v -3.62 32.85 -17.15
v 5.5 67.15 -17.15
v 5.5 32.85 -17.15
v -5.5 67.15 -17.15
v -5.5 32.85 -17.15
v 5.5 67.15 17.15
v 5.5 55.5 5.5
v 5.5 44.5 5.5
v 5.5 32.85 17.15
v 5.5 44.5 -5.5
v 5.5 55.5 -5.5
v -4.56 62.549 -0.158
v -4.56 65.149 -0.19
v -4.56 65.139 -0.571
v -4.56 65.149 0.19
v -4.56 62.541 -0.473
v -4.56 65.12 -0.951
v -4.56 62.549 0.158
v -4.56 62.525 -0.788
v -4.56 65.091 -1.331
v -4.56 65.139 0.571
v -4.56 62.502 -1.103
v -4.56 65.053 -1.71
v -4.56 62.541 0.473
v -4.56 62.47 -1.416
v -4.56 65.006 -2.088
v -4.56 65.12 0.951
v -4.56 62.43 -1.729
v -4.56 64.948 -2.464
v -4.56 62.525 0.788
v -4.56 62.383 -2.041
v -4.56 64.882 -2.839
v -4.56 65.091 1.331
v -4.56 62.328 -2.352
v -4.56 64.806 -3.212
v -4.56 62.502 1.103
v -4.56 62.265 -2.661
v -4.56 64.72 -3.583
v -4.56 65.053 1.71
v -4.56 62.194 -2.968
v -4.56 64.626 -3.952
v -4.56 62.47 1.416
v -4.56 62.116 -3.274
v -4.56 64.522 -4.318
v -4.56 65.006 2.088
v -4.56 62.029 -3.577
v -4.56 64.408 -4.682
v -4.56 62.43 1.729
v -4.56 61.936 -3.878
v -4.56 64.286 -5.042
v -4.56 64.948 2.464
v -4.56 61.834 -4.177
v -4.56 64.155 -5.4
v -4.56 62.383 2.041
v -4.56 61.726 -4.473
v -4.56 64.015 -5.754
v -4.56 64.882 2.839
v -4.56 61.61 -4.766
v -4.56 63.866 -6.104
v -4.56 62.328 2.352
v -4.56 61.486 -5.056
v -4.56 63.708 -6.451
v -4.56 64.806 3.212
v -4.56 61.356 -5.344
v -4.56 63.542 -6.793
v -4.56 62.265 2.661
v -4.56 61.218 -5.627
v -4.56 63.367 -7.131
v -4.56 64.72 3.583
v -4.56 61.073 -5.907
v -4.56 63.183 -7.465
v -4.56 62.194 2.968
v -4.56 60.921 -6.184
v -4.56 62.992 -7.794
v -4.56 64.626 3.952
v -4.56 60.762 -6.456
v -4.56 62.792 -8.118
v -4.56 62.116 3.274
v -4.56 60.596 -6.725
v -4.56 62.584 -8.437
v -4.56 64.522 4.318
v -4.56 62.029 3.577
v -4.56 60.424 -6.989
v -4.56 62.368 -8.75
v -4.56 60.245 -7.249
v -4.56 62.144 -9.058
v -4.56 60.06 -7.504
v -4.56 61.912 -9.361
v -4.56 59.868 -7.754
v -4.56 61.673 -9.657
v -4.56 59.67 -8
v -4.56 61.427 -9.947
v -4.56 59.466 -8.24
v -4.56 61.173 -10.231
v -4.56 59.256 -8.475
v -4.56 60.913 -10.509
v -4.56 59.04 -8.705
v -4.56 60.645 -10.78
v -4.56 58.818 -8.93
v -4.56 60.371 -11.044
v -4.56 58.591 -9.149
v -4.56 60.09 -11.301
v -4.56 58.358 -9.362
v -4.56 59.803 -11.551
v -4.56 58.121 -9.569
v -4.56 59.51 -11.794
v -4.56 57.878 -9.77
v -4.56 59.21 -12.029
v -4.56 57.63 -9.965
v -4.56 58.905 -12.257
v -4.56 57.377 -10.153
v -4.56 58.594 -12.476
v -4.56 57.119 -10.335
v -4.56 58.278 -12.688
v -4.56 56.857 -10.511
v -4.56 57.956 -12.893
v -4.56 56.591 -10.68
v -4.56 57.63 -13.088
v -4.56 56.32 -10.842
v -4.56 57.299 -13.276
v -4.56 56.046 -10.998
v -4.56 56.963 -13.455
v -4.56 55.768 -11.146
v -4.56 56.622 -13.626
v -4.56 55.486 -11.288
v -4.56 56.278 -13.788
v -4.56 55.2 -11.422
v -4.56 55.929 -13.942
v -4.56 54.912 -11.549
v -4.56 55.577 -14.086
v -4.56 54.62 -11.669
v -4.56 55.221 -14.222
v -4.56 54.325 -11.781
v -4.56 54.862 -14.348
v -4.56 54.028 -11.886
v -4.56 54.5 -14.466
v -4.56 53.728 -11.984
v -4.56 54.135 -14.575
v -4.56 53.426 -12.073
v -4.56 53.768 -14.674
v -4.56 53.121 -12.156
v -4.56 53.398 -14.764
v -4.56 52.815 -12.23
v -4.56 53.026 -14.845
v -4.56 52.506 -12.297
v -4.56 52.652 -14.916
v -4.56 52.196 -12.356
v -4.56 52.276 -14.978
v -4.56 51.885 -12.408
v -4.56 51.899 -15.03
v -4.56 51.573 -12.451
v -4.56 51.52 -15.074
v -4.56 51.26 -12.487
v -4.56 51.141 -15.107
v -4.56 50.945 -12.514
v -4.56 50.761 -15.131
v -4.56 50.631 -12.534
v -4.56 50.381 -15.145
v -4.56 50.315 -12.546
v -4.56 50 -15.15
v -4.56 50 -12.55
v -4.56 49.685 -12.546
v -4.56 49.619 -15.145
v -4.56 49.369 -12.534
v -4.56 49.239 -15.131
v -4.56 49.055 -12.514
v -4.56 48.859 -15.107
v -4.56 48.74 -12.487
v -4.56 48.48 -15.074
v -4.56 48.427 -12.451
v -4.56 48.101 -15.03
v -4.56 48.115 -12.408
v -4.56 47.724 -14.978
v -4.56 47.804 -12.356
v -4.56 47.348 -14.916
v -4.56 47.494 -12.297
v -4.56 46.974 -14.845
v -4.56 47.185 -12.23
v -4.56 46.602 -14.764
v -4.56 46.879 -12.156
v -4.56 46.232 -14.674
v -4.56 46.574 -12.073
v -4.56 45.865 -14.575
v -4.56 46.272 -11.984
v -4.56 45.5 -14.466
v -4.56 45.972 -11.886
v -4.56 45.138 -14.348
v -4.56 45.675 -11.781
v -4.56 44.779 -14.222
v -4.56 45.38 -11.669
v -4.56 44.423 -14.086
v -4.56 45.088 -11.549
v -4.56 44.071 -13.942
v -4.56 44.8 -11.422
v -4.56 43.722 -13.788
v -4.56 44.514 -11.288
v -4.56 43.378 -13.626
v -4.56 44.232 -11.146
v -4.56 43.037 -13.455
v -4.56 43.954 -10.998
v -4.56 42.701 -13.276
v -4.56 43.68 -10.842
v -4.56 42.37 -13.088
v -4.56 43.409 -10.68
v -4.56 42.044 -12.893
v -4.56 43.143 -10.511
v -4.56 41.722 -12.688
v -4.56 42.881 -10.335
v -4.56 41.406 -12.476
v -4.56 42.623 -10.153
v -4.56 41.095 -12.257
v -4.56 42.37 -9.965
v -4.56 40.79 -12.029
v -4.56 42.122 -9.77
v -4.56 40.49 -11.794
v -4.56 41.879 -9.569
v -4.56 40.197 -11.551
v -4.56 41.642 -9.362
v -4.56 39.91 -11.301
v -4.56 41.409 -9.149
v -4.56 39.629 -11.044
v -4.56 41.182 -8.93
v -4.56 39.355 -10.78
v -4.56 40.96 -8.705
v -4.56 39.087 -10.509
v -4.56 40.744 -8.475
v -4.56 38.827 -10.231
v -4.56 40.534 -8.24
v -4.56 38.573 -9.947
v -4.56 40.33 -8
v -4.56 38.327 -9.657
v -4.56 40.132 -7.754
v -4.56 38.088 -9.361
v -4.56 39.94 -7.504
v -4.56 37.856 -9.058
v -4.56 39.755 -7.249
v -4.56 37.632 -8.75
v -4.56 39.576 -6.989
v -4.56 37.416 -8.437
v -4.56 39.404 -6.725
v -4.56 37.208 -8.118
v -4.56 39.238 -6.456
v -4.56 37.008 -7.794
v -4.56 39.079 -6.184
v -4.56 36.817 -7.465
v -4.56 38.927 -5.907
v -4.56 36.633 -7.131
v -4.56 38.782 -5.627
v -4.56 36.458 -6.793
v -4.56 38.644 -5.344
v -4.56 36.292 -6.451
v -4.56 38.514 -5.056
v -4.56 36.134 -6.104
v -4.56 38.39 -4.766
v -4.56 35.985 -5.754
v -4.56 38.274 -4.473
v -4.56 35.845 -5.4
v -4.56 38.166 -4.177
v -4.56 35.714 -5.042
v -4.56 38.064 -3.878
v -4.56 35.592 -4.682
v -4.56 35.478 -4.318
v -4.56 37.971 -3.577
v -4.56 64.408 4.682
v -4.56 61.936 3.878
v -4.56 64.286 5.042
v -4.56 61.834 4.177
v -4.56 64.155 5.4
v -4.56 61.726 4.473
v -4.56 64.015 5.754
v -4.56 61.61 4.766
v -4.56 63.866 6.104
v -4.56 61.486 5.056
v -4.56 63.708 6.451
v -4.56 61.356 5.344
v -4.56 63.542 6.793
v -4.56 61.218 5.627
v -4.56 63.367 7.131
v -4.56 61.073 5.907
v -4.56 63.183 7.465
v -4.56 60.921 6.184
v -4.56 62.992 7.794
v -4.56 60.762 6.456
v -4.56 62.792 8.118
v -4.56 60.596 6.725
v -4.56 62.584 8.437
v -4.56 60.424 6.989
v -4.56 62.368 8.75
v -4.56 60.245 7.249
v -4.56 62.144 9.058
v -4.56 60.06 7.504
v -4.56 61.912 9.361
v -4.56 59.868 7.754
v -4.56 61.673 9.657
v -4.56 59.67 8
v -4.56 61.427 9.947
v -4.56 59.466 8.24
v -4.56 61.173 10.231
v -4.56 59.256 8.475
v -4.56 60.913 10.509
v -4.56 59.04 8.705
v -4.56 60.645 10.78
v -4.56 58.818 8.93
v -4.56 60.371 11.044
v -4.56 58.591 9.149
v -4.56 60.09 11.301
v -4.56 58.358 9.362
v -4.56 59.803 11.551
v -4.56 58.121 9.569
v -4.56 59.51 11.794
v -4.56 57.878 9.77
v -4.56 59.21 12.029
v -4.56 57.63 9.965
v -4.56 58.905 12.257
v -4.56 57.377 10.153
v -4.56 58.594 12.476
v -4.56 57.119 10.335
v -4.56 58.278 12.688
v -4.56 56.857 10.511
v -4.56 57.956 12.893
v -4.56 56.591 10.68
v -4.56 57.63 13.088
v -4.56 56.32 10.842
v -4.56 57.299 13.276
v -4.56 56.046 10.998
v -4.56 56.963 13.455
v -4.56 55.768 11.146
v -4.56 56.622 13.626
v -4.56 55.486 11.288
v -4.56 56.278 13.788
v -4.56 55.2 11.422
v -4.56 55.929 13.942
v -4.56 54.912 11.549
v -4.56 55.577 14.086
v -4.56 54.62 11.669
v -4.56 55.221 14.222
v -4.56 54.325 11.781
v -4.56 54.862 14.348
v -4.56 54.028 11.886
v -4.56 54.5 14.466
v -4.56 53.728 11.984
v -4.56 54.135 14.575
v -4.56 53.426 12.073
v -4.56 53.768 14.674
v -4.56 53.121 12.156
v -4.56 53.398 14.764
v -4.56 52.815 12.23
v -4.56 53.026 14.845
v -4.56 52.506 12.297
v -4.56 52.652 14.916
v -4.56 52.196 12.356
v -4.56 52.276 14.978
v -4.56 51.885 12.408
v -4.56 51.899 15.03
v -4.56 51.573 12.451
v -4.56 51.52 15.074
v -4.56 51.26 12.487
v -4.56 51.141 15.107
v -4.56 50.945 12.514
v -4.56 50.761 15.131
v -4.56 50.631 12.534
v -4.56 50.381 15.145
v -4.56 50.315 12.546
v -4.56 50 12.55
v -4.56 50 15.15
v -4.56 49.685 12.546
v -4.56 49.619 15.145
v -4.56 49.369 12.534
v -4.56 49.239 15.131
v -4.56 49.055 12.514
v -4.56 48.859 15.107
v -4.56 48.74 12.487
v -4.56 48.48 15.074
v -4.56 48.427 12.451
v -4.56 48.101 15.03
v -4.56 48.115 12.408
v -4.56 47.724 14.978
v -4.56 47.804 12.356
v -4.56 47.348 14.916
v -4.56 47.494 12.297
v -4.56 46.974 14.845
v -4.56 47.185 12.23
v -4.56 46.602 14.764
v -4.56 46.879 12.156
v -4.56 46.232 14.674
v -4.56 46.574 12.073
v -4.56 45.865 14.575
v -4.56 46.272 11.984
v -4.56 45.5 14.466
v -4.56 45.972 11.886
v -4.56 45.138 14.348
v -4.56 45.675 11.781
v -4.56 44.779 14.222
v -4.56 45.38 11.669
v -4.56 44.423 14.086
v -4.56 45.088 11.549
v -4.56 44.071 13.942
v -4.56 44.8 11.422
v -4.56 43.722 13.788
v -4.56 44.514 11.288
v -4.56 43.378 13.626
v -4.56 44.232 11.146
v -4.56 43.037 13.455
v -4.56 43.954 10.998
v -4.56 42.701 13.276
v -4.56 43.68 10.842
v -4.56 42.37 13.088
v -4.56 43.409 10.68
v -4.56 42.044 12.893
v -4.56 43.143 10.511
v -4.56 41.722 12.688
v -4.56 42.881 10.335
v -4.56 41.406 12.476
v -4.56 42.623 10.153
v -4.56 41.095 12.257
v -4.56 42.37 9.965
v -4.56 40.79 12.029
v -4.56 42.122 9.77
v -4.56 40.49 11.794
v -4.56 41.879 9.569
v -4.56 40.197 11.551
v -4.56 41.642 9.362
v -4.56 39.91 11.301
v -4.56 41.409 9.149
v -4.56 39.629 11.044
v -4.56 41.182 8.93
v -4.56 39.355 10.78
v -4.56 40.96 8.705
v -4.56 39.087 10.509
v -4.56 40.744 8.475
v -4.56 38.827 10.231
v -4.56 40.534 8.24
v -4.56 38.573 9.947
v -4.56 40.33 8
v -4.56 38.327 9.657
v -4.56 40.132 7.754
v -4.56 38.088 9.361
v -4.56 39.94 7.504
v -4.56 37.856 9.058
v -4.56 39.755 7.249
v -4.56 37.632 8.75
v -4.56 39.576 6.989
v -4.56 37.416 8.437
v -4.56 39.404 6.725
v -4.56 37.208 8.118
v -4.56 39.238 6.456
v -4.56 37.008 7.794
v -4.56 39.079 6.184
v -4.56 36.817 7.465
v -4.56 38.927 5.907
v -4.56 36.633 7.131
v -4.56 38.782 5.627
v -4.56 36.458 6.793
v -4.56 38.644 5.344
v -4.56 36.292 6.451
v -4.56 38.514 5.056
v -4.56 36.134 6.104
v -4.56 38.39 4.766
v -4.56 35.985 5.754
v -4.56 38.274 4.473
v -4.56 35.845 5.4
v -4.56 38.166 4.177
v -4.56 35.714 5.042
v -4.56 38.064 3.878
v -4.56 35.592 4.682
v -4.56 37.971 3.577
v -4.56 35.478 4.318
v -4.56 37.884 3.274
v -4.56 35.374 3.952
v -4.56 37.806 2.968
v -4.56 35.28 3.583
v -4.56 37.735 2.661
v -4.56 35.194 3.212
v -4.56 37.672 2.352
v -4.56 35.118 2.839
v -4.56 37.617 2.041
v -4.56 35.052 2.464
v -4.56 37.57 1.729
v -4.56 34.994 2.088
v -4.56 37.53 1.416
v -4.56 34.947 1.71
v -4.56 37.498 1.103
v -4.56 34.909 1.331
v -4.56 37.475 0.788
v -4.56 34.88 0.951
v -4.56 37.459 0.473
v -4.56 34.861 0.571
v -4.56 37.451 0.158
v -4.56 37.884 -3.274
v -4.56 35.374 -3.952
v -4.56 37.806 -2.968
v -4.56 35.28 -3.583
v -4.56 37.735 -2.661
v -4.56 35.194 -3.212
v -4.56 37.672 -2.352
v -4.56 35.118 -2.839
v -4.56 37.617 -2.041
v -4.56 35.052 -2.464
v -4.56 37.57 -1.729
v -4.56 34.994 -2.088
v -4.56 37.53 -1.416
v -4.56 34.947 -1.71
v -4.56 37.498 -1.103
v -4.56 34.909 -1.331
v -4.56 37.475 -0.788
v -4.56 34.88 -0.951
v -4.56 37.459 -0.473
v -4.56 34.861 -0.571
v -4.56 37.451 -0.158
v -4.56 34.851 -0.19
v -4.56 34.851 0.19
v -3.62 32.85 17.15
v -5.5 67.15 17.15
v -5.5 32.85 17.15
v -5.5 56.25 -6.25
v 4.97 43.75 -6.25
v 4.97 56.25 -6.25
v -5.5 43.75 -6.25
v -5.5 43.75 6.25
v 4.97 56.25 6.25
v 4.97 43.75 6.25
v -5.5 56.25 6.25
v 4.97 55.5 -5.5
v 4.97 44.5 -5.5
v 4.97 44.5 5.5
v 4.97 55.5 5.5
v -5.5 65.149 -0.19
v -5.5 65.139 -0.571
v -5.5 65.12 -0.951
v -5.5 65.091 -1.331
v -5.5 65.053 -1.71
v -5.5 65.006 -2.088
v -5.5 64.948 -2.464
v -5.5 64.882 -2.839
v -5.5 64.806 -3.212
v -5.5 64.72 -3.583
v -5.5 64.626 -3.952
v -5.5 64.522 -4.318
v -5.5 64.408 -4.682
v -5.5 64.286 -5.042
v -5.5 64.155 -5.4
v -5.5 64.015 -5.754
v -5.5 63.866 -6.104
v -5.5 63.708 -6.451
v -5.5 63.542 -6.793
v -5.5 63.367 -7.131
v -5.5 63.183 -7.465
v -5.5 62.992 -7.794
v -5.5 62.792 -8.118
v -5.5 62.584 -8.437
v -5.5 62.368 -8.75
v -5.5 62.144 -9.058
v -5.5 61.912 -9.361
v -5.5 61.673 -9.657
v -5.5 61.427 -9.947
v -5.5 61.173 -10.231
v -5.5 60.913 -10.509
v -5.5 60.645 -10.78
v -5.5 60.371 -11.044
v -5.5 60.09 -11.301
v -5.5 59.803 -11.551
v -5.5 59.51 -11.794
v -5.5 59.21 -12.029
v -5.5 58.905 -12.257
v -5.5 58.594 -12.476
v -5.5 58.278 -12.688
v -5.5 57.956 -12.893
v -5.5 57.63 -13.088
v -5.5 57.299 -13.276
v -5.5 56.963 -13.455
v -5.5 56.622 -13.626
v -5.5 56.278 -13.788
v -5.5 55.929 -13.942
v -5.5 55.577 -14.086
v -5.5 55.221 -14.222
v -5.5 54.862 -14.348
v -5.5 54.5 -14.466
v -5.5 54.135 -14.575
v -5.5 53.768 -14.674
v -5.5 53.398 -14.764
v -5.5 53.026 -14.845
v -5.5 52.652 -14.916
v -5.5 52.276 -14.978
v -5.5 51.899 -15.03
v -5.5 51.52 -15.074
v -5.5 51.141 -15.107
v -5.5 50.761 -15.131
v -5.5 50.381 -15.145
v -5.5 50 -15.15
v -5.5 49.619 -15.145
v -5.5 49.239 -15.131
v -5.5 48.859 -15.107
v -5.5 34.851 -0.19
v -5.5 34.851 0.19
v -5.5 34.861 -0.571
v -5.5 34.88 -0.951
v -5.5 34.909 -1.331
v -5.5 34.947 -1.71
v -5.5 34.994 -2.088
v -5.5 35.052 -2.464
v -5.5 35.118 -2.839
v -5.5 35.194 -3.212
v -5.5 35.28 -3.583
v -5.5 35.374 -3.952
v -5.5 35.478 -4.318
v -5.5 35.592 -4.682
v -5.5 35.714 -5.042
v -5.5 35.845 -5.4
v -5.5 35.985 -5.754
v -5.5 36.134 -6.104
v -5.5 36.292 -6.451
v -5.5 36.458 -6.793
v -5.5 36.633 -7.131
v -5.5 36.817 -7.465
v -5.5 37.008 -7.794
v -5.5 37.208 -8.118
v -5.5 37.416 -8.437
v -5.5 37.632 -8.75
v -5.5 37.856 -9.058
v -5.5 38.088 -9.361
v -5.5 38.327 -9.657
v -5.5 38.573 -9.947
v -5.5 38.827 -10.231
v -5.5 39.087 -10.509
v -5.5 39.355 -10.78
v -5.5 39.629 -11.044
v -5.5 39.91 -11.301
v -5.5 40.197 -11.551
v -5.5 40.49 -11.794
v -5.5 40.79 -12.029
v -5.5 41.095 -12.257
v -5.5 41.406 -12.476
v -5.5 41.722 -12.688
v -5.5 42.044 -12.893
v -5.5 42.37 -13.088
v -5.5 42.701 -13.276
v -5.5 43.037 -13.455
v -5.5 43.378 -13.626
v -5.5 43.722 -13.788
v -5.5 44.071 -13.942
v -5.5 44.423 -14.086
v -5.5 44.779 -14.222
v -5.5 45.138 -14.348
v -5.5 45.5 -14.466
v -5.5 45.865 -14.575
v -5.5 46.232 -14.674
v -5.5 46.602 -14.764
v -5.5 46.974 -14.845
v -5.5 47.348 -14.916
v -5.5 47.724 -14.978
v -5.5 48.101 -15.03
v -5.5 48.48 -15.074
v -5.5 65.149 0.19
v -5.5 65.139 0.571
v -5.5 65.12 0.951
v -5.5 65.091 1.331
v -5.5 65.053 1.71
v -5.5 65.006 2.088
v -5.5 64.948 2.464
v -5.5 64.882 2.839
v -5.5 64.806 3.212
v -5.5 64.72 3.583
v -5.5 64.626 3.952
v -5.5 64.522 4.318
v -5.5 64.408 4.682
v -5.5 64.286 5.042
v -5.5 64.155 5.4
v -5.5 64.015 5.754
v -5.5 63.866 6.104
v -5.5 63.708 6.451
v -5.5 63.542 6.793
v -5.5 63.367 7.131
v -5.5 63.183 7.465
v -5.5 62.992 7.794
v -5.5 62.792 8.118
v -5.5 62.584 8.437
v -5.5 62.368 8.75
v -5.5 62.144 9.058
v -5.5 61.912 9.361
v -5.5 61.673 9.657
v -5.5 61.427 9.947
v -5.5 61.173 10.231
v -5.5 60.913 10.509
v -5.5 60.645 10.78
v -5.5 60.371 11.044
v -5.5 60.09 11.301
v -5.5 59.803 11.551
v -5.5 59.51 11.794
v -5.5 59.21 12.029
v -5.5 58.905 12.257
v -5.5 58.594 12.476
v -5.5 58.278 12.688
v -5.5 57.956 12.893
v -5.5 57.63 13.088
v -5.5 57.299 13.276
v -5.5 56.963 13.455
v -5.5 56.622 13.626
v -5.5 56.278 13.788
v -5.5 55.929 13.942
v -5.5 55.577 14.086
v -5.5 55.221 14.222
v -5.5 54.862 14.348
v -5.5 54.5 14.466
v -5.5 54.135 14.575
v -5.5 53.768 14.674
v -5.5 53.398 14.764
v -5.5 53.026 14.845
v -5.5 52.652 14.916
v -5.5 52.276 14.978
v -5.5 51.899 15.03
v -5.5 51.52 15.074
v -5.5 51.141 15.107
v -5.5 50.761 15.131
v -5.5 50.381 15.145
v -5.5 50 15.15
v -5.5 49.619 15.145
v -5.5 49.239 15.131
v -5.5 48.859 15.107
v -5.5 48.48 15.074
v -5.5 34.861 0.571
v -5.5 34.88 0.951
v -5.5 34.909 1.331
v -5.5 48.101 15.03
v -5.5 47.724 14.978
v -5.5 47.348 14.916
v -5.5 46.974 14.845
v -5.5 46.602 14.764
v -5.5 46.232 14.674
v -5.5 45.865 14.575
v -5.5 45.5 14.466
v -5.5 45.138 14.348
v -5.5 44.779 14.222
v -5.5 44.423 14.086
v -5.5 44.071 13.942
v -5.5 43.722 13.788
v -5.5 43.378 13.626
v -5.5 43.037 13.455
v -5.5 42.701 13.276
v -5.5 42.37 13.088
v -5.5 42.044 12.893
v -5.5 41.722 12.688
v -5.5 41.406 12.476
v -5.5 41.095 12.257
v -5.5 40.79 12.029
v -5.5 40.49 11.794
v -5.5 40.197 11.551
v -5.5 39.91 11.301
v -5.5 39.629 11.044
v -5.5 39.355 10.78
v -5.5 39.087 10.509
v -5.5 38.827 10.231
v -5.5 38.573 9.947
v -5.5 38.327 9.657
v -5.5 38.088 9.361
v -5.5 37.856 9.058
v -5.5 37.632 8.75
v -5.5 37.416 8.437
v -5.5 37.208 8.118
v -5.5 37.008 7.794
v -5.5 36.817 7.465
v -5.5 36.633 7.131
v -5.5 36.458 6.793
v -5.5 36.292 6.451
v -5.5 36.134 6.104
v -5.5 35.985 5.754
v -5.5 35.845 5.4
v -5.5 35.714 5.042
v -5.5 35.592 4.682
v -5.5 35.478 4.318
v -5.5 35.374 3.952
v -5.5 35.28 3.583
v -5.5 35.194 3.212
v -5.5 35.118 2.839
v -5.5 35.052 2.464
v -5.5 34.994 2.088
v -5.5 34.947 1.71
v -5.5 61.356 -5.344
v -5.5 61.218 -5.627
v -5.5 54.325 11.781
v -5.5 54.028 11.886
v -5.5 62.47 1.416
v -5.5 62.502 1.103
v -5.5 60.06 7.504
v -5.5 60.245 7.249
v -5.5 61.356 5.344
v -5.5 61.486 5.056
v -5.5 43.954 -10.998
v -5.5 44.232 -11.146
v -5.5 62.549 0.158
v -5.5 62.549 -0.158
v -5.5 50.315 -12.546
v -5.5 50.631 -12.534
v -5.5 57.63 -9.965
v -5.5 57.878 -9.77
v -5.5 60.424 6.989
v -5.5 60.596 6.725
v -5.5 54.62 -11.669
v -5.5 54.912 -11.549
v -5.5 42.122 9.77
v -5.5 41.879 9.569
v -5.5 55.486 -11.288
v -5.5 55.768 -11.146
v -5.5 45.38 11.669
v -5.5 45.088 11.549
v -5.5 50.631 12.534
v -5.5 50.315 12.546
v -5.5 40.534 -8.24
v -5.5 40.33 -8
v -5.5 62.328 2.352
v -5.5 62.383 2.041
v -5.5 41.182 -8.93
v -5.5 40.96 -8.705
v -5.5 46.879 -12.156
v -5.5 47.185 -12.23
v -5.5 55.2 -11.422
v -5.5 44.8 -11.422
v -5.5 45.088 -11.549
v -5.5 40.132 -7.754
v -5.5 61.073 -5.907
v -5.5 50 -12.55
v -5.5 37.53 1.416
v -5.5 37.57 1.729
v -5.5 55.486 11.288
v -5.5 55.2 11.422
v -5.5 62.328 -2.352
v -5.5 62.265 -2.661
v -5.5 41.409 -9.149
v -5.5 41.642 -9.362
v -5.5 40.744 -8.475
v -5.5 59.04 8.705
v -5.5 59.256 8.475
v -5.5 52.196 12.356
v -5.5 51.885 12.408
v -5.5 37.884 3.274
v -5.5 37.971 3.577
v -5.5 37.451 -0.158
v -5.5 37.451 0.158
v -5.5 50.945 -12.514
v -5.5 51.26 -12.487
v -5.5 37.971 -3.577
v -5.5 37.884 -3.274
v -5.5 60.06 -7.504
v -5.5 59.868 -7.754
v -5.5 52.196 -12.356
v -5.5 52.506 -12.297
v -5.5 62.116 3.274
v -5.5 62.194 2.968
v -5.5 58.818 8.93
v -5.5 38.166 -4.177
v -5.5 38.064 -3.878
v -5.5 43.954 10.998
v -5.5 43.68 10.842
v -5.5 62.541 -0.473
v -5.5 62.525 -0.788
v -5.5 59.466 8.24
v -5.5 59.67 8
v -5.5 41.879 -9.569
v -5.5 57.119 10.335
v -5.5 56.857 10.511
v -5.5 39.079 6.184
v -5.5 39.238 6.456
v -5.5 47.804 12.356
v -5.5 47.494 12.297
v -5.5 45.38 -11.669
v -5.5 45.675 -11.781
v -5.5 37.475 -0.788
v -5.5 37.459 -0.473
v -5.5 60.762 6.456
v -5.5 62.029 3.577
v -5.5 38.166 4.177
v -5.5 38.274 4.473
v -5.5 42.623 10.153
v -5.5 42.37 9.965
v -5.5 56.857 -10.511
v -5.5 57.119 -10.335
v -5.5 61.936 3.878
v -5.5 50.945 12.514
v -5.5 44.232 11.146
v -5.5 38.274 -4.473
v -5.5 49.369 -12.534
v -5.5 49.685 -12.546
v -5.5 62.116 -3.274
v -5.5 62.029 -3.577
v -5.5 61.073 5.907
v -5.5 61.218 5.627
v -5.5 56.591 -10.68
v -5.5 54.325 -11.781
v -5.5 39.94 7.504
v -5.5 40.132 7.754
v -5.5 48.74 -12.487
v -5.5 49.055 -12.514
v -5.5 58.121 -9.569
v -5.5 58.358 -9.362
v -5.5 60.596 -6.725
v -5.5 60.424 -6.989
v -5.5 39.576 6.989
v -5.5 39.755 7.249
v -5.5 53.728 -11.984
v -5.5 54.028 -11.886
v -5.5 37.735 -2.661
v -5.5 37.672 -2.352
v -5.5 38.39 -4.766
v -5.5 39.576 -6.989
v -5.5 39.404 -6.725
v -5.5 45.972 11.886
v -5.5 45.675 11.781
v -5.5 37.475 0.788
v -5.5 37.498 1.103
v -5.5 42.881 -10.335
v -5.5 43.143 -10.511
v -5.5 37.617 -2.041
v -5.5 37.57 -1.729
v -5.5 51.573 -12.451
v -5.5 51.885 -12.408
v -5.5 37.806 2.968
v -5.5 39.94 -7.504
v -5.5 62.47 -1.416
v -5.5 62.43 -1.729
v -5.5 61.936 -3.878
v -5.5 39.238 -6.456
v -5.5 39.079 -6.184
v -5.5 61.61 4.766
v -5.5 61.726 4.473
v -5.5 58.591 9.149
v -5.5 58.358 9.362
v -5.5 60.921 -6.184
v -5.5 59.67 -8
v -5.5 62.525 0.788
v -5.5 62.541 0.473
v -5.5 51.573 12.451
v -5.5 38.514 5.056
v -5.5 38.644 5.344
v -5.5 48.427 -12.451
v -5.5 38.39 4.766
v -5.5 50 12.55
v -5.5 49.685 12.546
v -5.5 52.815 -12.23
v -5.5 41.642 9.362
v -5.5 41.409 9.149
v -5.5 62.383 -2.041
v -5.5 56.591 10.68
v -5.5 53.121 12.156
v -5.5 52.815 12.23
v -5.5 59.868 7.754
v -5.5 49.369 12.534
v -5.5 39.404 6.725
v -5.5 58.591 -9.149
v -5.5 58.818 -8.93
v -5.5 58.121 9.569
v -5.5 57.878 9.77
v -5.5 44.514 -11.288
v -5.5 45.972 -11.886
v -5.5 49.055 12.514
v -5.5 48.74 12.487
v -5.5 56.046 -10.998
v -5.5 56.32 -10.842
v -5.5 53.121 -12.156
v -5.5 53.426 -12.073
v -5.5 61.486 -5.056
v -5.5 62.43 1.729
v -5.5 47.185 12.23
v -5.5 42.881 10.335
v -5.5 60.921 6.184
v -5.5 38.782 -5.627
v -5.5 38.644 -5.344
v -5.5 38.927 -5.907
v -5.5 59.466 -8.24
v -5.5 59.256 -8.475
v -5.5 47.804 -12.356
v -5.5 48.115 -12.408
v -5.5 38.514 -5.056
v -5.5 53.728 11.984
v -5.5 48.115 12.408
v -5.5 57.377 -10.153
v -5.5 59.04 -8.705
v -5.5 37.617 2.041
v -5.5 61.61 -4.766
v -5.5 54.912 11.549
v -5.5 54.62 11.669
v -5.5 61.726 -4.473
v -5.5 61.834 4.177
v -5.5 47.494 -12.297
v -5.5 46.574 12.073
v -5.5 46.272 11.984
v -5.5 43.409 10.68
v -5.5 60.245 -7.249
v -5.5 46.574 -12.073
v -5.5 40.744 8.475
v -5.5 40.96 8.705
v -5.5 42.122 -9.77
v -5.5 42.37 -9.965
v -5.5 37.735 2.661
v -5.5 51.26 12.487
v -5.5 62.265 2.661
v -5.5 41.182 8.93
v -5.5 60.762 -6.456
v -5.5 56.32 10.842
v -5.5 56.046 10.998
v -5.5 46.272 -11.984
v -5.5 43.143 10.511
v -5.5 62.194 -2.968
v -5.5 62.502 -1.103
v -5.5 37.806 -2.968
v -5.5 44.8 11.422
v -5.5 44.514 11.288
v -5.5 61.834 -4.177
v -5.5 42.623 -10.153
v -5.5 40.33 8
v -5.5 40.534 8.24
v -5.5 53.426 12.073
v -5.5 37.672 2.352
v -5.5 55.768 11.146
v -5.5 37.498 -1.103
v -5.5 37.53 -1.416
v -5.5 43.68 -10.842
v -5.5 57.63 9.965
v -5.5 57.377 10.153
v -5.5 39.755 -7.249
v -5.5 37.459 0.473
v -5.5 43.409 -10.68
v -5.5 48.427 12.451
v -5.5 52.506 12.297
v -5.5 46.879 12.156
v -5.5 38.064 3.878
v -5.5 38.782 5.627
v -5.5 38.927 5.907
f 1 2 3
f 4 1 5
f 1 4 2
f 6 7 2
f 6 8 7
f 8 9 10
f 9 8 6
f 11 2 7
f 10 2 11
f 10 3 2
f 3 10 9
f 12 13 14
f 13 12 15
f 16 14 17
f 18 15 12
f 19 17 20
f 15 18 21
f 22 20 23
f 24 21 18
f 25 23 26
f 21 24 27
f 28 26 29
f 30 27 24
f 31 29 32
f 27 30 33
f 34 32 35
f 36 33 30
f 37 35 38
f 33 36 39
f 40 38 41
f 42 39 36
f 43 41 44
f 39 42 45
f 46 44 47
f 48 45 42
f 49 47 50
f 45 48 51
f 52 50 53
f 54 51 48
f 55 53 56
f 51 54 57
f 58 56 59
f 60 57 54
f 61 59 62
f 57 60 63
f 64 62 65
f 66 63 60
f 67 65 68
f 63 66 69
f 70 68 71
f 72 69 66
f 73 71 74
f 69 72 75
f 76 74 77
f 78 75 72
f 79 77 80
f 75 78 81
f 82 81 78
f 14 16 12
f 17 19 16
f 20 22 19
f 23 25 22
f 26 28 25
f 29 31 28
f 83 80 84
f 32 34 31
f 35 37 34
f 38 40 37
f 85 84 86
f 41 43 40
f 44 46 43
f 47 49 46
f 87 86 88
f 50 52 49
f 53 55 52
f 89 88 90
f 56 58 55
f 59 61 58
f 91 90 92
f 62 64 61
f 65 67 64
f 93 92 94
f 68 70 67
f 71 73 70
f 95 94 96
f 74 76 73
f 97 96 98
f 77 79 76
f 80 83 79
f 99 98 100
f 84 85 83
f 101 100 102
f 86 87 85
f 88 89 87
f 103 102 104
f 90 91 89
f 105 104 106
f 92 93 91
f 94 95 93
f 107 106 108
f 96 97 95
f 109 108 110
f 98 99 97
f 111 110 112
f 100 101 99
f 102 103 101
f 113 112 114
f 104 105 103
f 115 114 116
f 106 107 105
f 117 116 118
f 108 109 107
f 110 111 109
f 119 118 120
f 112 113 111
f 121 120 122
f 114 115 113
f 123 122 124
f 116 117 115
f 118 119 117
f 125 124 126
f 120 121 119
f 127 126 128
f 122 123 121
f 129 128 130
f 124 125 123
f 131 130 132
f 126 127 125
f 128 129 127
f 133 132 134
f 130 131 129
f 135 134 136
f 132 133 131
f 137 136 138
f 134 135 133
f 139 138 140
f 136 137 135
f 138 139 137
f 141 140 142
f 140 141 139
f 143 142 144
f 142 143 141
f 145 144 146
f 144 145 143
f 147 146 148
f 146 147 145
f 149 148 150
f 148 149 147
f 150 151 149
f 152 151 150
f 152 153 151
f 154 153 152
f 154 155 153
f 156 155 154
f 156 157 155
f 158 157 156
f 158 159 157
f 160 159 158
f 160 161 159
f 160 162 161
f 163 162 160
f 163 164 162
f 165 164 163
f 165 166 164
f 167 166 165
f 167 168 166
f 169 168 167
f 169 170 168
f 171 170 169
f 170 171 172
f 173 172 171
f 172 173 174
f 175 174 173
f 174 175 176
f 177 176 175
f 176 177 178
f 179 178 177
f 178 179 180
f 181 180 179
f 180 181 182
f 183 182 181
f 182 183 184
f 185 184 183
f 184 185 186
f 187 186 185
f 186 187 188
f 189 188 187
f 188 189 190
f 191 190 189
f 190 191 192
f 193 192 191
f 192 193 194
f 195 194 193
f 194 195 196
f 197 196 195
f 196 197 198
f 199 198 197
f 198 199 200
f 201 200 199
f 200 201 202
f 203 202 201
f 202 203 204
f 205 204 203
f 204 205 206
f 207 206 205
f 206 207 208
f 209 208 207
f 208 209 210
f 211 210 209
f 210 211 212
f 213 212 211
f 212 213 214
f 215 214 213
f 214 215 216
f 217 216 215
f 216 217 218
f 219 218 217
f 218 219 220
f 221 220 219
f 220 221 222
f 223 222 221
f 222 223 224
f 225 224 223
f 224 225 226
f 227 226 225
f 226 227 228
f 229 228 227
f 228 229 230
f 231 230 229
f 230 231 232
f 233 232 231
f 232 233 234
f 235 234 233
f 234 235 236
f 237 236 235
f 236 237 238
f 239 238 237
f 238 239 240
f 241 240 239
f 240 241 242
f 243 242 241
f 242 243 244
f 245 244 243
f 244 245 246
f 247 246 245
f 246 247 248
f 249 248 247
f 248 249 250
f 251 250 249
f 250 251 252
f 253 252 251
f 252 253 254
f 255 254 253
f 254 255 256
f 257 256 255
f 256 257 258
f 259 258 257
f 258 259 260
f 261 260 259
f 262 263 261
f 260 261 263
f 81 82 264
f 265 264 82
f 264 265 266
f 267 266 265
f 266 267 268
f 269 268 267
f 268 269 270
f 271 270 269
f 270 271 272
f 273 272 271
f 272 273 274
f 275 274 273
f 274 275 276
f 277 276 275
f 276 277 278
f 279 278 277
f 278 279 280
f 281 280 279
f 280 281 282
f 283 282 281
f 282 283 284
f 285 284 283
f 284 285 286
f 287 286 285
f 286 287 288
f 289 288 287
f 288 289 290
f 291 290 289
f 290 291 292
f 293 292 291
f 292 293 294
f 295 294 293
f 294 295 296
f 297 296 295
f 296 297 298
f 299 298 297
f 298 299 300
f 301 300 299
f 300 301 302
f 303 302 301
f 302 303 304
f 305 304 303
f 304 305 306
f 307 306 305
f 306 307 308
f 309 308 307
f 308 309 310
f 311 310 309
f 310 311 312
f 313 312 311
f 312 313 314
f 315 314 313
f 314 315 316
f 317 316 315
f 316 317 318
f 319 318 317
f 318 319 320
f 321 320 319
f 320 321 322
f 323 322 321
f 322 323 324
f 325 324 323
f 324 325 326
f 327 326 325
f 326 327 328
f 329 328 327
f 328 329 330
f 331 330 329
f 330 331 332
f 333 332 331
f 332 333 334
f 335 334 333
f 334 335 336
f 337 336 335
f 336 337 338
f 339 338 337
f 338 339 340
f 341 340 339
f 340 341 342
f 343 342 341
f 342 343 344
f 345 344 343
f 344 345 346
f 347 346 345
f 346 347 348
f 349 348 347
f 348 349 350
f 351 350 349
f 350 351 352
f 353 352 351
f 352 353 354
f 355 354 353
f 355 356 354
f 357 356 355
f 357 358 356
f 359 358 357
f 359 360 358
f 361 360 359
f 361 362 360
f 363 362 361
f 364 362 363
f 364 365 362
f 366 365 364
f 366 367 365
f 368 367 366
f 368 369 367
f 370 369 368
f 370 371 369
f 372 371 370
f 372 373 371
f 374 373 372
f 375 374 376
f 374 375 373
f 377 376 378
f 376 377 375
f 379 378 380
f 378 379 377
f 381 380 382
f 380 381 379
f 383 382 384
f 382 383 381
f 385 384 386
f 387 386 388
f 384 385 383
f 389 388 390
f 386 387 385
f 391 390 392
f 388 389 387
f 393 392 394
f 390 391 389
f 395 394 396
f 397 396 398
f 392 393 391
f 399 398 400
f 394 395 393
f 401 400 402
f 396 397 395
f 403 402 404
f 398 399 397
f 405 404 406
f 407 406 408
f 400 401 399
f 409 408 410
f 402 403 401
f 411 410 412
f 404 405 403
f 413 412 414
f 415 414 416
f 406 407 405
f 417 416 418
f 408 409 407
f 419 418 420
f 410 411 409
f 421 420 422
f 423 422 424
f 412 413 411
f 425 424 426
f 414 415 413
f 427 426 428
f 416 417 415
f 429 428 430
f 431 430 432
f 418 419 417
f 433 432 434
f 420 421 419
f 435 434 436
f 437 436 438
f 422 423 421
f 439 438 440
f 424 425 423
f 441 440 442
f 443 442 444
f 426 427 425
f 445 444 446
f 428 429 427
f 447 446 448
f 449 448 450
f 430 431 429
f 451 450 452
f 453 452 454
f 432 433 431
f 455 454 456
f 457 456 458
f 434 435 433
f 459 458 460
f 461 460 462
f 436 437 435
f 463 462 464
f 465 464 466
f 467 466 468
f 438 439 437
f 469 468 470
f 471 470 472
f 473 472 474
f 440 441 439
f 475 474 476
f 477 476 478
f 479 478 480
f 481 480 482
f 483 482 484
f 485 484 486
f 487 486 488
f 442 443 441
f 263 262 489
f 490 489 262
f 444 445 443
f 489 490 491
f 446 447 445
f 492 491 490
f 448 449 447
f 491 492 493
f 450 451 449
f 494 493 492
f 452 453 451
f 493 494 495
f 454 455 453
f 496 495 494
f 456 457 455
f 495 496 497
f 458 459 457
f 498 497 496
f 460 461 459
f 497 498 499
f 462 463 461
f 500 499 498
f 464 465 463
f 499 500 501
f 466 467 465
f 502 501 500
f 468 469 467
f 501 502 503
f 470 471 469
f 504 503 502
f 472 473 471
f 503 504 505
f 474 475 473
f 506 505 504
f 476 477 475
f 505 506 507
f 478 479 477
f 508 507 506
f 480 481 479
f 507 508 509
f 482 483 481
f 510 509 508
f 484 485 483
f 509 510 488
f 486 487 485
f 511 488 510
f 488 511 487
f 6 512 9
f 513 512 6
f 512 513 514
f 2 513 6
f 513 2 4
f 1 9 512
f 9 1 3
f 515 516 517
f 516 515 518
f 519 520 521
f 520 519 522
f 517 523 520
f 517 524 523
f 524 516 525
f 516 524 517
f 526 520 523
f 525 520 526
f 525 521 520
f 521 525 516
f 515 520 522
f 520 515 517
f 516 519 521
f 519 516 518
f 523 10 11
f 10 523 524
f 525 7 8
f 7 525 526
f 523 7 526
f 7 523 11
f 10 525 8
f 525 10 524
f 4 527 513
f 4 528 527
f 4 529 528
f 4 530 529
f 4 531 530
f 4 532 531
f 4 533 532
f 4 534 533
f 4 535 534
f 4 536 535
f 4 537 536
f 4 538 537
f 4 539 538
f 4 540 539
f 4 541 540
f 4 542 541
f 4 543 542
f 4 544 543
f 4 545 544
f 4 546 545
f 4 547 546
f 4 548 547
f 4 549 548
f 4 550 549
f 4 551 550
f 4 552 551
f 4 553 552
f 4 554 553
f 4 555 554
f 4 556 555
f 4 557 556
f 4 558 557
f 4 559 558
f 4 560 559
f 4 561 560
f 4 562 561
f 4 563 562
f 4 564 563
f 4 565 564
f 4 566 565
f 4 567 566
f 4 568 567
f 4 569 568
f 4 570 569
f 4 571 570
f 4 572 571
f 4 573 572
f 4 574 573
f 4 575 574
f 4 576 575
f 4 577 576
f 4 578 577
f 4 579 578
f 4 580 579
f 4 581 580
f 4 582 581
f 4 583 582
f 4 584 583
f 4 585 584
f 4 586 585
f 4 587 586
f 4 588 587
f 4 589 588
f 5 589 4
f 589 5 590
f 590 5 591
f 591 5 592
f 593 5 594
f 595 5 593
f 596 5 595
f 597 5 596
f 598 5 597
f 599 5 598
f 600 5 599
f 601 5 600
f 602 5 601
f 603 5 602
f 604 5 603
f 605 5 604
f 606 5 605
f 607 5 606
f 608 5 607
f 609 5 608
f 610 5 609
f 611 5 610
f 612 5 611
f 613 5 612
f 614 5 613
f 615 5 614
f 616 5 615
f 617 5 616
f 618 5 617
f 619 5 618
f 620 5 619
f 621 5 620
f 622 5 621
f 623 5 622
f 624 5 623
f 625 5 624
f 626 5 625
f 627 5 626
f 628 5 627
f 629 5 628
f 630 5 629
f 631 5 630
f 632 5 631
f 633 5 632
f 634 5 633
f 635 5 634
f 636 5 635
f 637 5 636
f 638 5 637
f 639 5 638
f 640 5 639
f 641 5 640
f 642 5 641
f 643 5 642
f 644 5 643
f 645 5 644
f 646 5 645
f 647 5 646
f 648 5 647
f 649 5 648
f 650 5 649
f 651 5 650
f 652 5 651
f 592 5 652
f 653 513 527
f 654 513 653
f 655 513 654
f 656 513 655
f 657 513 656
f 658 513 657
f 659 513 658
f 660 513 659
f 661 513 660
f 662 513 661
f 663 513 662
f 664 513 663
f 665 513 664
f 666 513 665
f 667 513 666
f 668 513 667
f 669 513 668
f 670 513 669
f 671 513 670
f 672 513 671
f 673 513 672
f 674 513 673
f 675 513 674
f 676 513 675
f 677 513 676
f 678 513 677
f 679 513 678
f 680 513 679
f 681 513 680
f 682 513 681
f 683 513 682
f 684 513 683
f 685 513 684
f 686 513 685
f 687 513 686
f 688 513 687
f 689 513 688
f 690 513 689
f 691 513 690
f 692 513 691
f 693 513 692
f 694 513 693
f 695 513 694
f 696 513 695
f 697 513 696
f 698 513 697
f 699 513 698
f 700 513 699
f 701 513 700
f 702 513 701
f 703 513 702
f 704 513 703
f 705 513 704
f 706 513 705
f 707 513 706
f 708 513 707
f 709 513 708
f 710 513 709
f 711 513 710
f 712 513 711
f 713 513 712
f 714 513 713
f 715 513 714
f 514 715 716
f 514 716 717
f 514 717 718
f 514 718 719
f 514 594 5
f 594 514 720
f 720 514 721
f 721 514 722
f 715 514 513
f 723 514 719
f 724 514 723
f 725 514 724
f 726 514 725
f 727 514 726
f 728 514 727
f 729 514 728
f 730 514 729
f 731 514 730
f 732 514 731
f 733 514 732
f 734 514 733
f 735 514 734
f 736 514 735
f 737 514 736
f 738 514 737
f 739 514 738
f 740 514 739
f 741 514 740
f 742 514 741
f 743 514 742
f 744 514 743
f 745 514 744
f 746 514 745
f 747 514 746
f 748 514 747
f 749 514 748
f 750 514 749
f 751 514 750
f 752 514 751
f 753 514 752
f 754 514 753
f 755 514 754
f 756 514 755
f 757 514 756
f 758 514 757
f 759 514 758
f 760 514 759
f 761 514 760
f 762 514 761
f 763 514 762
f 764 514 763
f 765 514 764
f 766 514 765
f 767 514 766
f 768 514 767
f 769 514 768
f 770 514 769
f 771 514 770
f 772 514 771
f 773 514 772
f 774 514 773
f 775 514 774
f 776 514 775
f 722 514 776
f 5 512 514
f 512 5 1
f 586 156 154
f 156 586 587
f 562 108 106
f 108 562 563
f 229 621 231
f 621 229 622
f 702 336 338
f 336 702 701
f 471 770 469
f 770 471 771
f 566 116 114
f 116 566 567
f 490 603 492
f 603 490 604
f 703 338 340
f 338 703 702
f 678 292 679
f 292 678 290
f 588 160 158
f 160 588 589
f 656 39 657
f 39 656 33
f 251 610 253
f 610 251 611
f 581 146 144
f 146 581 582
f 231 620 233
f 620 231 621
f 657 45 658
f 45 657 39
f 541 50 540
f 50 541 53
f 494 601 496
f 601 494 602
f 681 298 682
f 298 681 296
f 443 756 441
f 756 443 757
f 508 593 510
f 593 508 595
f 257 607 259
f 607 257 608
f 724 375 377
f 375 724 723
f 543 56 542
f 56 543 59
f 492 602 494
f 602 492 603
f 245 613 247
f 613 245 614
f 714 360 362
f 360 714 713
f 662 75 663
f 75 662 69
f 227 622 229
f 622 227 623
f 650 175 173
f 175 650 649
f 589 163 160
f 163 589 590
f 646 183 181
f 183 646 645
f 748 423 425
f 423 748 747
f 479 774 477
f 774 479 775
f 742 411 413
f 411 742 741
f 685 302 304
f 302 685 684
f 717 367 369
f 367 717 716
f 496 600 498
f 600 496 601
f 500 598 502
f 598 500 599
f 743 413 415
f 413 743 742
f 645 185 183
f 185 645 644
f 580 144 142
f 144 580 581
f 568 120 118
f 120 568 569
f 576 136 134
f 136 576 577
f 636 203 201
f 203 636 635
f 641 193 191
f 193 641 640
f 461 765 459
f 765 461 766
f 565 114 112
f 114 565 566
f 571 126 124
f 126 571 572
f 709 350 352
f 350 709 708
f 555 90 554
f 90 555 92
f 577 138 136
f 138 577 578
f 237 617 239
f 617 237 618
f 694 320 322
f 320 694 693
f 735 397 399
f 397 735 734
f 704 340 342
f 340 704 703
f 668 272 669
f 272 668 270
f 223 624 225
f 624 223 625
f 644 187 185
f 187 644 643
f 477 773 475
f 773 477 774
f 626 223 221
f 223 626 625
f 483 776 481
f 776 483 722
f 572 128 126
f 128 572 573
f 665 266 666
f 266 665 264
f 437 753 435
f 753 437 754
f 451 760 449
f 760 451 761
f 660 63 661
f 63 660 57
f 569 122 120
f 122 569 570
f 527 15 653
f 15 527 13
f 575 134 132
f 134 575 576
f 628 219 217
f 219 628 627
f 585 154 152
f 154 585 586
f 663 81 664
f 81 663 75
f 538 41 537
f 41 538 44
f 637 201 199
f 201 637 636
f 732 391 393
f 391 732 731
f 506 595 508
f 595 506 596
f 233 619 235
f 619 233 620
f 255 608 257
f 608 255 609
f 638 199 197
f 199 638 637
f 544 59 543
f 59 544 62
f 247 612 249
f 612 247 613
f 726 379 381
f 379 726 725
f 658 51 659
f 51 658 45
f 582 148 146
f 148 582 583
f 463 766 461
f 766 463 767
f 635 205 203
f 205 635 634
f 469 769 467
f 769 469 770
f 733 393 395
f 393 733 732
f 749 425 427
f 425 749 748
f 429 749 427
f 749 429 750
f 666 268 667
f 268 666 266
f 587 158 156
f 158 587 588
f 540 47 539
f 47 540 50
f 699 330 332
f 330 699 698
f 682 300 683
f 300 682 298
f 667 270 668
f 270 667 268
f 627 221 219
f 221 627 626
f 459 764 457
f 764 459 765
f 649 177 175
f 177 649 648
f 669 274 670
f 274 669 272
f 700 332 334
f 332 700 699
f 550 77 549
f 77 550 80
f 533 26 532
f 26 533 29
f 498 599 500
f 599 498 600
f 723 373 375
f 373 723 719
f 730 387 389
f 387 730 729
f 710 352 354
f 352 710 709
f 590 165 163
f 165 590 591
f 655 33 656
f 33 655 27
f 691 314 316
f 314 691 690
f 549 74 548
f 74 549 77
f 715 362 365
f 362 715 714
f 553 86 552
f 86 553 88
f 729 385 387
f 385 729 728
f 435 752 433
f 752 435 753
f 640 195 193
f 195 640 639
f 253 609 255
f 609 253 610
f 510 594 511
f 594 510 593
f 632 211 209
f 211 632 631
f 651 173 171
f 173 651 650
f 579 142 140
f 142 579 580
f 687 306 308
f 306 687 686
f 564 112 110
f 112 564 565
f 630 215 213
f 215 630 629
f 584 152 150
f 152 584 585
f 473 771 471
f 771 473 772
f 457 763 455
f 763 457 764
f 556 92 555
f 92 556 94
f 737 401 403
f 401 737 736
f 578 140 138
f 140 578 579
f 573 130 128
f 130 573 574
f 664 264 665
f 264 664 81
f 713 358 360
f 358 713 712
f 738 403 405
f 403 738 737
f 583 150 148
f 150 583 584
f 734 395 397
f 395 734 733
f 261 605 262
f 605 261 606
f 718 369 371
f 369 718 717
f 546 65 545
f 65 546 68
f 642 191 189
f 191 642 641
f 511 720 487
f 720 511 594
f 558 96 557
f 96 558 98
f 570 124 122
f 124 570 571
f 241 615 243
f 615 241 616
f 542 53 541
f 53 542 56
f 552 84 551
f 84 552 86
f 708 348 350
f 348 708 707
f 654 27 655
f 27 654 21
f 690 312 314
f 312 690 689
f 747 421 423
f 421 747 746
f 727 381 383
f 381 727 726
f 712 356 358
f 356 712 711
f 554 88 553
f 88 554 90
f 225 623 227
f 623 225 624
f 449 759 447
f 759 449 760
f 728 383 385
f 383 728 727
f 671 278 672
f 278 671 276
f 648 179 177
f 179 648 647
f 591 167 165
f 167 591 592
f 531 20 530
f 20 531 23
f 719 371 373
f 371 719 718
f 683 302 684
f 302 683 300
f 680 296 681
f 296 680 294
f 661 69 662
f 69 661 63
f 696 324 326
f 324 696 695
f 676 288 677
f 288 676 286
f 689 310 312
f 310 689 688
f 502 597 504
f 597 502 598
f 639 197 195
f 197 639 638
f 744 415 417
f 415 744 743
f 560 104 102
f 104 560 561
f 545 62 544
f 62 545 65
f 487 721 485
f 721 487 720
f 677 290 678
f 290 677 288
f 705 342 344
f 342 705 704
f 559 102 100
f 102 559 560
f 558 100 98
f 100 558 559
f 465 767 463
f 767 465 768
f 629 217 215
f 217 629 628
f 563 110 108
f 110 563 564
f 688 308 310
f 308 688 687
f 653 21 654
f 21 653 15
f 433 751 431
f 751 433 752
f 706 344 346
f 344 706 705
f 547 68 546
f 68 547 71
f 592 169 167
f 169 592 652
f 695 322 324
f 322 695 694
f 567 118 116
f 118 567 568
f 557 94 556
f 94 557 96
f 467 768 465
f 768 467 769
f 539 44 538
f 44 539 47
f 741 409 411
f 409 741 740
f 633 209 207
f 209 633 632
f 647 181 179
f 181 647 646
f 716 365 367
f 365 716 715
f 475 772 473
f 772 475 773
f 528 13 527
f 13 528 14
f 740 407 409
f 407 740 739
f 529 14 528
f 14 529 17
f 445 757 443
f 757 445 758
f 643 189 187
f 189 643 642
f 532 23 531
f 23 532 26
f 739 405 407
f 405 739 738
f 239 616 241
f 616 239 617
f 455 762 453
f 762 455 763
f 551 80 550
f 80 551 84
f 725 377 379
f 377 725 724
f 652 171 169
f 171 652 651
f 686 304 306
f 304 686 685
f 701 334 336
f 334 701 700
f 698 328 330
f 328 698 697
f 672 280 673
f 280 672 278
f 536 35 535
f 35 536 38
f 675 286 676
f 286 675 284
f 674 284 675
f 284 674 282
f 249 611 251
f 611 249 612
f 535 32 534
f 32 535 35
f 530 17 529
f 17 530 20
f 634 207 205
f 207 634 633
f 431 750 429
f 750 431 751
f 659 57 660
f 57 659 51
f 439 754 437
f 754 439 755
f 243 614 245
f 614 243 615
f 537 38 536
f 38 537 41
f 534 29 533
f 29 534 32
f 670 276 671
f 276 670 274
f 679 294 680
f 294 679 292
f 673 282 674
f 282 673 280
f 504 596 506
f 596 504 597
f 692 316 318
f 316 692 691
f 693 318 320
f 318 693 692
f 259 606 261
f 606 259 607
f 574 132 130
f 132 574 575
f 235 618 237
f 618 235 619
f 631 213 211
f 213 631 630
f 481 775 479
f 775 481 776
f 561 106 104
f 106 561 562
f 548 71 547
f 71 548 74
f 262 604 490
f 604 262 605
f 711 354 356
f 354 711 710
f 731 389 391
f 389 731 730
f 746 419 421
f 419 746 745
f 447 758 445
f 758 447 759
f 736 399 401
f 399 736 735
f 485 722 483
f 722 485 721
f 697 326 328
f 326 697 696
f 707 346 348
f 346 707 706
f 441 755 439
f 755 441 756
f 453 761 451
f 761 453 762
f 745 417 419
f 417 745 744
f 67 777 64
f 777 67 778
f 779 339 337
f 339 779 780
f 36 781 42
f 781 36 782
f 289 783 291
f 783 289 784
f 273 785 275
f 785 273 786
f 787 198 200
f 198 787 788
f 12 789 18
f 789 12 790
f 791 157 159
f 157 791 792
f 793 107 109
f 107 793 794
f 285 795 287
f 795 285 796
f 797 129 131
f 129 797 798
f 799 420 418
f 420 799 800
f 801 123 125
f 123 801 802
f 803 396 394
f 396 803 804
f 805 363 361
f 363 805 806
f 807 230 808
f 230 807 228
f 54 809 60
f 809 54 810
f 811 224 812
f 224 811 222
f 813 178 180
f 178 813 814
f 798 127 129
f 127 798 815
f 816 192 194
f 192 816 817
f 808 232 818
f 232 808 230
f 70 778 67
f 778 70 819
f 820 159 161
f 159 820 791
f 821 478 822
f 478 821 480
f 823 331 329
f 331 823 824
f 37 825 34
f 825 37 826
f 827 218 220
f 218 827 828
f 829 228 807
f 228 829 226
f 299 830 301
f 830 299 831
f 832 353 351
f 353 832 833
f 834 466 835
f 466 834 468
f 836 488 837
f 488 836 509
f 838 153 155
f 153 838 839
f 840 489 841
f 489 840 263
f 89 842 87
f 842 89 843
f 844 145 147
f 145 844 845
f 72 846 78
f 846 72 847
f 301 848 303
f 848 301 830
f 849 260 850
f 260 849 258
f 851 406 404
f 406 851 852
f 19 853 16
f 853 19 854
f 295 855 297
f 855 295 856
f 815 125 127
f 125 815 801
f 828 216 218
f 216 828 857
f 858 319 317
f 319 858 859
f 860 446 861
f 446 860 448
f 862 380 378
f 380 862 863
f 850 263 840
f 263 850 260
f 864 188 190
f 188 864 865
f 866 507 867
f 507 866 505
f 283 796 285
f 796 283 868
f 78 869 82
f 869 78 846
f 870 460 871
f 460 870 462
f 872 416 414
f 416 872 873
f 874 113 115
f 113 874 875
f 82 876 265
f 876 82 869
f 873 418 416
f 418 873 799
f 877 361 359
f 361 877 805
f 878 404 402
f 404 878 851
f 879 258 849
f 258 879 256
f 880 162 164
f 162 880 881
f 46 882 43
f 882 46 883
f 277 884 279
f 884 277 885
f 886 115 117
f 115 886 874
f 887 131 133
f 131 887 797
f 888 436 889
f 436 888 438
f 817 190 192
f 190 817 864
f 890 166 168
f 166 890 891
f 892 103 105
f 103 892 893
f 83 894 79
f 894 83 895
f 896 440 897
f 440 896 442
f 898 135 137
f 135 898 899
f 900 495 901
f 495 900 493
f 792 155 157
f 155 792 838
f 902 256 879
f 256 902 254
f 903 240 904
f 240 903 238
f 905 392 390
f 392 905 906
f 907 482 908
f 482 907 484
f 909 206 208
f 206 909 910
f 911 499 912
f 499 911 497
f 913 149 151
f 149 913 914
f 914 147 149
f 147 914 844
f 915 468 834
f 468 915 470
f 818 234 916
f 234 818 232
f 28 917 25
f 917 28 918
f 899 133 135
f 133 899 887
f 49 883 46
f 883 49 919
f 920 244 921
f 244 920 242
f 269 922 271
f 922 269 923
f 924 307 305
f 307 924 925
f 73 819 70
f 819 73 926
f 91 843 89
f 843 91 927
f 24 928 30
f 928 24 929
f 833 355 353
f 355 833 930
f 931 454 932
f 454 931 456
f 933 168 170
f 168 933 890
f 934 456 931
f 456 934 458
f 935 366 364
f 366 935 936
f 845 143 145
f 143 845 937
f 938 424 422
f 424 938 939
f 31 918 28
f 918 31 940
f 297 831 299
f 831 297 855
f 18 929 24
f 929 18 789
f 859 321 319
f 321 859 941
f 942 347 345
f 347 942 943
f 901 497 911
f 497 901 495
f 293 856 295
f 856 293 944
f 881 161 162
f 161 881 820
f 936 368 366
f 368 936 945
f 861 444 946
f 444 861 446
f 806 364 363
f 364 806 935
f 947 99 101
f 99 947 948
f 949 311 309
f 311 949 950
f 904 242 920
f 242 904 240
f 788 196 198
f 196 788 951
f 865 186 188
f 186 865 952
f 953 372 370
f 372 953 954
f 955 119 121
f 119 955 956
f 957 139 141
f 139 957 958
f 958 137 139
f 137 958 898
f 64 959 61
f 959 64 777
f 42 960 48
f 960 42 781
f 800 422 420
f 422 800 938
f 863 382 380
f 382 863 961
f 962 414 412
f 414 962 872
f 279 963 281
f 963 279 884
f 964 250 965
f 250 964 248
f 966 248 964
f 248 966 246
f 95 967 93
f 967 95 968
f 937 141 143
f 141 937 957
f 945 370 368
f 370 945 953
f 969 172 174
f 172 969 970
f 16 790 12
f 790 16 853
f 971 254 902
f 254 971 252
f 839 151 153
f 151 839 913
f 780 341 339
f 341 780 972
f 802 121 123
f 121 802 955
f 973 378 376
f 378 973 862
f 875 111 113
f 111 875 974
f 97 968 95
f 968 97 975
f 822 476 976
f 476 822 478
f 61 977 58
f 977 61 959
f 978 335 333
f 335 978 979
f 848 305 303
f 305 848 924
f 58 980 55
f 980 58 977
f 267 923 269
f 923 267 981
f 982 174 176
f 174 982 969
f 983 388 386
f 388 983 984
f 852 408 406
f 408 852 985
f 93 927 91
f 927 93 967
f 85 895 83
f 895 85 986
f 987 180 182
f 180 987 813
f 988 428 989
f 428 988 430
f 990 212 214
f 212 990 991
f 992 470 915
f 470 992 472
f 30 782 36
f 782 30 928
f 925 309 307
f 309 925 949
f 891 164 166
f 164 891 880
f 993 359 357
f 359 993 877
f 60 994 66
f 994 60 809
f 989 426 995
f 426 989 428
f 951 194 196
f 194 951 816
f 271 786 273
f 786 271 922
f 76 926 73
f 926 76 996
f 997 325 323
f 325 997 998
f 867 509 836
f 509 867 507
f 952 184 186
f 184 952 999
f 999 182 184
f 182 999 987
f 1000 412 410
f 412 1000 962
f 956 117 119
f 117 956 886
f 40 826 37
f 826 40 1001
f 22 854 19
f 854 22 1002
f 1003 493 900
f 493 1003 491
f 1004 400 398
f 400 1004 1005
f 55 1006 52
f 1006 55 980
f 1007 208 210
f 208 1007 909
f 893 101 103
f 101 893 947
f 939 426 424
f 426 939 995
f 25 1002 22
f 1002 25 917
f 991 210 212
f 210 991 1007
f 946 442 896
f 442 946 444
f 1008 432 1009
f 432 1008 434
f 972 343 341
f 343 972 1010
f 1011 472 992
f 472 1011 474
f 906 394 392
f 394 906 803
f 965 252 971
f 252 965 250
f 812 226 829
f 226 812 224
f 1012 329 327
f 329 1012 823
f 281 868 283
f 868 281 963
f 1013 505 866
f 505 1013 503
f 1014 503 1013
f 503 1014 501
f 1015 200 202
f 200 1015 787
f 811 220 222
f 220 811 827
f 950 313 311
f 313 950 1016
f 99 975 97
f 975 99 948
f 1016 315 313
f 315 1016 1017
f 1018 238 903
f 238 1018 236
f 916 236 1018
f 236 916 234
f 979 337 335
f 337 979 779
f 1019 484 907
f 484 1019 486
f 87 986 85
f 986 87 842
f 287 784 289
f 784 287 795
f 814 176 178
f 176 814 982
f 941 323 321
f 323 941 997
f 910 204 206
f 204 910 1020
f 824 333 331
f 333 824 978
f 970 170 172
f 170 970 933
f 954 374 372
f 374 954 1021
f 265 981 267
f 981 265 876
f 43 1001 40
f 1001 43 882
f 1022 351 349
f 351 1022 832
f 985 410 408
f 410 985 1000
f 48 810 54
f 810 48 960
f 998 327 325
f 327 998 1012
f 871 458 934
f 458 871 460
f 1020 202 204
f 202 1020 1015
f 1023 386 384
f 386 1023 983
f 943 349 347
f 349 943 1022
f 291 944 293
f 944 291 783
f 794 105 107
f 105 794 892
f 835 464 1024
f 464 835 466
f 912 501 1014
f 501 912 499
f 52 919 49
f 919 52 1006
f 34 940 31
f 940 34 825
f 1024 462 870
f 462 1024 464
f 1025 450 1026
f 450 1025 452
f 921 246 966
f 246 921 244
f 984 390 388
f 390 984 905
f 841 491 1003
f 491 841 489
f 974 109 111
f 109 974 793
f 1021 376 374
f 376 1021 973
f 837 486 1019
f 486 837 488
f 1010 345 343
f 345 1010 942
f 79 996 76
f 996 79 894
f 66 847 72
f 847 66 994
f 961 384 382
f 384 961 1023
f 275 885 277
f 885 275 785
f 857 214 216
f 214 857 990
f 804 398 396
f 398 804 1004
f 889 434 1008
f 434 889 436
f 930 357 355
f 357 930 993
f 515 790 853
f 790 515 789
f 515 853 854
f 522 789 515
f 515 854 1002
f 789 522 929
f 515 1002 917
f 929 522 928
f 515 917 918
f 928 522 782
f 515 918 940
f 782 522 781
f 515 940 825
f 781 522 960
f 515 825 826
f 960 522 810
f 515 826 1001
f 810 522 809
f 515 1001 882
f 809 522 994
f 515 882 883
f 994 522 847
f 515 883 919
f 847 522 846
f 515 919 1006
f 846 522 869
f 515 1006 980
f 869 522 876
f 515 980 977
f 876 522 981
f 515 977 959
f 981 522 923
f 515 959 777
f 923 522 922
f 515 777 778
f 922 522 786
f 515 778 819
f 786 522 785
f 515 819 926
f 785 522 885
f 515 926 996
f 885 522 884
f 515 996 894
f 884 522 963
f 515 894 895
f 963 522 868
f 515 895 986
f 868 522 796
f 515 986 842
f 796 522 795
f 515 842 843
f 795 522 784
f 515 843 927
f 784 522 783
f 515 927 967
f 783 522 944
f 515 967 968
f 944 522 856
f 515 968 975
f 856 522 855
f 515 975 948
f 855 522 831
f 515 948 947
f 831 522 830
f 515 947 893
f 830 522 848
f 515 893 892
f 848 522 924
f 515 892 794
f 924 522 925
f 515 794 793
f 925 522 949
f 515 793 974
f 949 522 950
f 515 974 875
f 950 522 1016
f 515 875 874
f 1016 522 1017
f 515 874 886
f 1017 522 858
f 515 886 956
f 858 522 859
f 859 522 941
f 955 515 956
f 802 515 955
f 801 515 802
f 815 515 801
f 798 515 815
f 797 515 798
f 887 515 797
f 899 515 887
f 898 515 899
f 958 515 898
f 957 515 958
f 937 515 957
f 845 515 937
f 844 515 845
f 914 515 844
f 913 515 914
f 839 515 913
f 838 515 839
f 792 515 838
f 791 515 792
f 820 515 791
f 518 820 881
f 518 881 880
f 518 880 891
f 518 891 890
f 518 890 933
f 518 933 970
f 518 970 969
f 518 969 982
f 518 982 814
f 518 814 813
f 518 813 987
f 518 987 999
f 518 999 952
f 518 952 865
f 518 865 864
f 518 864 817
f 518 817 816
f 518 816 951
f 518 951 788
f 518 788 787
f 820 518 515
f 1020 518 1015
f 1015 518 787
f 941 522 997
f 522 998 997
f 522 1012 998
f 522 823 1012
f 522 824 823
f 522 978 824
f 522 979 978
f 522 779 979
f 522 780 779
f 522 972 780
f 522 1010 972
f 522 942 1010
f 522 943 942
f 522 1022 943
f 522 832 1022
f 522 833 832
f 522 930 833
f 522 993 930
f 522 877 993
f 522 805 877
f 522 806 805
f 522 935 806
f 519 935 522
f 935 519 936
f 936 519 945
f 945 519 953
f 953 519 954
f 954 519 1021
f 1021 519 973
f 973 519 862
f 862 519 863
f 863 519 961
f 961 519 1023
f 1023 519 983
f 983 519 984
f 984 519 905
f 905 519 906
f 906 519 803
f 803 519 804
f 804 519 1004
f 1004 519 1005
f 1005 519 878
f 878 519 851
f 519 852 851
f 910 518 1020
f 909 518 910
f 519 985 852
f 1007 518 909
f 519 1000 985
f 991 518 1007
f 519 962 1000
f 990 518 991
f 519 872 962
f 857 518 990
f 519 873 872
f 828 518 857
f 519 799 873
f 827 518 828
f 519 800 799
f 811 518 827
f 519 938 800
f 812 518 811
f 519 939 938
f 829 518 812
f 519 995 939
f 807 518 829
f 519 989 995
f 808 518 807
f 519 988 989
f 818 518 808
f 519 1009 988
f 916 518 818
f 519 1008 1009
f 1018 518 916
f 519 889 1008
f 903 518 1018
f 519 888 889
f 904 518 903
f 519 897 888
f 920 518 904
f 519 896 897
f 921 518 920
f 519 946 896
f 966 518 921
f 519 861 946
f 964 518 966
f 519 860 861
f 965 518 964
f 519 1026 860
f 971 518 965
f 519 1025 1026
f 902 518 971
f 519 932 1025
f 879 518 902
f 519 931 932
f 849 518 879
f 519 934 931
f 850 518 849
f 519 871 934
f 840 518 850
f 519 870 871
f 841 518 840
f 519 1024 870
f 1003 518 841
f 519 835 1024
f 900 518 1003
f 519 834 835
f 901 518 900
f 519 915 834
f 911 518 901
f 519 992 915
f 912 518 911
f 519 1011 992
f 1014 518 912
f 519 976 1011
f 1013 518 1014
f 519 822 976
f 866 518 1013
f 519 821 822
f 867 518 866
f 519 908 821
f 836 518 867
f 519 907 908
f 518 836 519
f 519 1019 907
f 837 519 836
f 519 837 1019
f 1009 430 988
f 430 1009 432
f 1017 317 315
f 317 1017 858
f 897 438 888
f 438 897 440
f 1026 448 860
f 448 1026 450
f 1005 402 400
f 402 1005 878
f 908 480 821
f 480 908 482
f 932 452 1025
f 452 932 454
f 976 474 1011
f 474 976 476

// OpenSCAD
//Outer block
height=50;
width=50;
depth=19;

//substrate slot

sHeight=12.5;
sWidth=12.5;
sDepth=9;

//Ridge
ridDepth=0.074*25.4; //As per workshop recommendation
ridInner=25.1/2; // radius for o-ring #120
ridCross=2.6; //Cross section

//canister
rRadius=ridInner+ridCross+2;
rDepth=sDepth+2;

//accuracy
n=250;




//translate([rDepth/2+ridDepth/2,0,0])rotate([0,90,0])cylinder(ridDepth,rRadius-2,rRadius-2,center=true);}


   
   
   //Substrate slot in canister 
    //Inner Ridge -Front
   dis=50;
   //Substrate slot in canister 
    translate([ridDepth/4,dis,0])rotate([0,90,0])difference(){cube([2*rRadius,2*rRadius,rDepth-ridDepth/2],center=true);
    rotate([0,90,0])cube([sDepth,sWidth,sHeight],center=true);
    rotate([0,90,0])translate([-sDepth/2,0,0])cube([2,sHeight-1.5,sWidth-1.5],center=true);
    rotate([0,90,0])translate([sDepth/2,0,0])cube([2,sHeight,sWidth],center=true);}
    
    difference(){translate([-rDepth/2+ridDepth/2,dis,0])rotate([0,90,0])cube([2*rRadius,2*rRadius,ridDepth],center=true);
       translate([-rDepth/2+ridDepth/2,dis,0])rotate([0,90,0])cylinder(ridDepth,ridInner+ridCross,ridInner+ridCross,center=true,$fn=n);}
    //inner ridge front
      difference(){translate([-rDepth/2+ridDepth/2,dis,0])rotate([0,90,0])cylinder(ridDepth,ridInner,ridInner,center=true,$fn=n);;
       translate([-rDepth/2+ridDepth/2,dis,0])rotate([0,0,0])cube([ridDepth+1,sHeight,sWidth],center=true);}
       


    
    
 
